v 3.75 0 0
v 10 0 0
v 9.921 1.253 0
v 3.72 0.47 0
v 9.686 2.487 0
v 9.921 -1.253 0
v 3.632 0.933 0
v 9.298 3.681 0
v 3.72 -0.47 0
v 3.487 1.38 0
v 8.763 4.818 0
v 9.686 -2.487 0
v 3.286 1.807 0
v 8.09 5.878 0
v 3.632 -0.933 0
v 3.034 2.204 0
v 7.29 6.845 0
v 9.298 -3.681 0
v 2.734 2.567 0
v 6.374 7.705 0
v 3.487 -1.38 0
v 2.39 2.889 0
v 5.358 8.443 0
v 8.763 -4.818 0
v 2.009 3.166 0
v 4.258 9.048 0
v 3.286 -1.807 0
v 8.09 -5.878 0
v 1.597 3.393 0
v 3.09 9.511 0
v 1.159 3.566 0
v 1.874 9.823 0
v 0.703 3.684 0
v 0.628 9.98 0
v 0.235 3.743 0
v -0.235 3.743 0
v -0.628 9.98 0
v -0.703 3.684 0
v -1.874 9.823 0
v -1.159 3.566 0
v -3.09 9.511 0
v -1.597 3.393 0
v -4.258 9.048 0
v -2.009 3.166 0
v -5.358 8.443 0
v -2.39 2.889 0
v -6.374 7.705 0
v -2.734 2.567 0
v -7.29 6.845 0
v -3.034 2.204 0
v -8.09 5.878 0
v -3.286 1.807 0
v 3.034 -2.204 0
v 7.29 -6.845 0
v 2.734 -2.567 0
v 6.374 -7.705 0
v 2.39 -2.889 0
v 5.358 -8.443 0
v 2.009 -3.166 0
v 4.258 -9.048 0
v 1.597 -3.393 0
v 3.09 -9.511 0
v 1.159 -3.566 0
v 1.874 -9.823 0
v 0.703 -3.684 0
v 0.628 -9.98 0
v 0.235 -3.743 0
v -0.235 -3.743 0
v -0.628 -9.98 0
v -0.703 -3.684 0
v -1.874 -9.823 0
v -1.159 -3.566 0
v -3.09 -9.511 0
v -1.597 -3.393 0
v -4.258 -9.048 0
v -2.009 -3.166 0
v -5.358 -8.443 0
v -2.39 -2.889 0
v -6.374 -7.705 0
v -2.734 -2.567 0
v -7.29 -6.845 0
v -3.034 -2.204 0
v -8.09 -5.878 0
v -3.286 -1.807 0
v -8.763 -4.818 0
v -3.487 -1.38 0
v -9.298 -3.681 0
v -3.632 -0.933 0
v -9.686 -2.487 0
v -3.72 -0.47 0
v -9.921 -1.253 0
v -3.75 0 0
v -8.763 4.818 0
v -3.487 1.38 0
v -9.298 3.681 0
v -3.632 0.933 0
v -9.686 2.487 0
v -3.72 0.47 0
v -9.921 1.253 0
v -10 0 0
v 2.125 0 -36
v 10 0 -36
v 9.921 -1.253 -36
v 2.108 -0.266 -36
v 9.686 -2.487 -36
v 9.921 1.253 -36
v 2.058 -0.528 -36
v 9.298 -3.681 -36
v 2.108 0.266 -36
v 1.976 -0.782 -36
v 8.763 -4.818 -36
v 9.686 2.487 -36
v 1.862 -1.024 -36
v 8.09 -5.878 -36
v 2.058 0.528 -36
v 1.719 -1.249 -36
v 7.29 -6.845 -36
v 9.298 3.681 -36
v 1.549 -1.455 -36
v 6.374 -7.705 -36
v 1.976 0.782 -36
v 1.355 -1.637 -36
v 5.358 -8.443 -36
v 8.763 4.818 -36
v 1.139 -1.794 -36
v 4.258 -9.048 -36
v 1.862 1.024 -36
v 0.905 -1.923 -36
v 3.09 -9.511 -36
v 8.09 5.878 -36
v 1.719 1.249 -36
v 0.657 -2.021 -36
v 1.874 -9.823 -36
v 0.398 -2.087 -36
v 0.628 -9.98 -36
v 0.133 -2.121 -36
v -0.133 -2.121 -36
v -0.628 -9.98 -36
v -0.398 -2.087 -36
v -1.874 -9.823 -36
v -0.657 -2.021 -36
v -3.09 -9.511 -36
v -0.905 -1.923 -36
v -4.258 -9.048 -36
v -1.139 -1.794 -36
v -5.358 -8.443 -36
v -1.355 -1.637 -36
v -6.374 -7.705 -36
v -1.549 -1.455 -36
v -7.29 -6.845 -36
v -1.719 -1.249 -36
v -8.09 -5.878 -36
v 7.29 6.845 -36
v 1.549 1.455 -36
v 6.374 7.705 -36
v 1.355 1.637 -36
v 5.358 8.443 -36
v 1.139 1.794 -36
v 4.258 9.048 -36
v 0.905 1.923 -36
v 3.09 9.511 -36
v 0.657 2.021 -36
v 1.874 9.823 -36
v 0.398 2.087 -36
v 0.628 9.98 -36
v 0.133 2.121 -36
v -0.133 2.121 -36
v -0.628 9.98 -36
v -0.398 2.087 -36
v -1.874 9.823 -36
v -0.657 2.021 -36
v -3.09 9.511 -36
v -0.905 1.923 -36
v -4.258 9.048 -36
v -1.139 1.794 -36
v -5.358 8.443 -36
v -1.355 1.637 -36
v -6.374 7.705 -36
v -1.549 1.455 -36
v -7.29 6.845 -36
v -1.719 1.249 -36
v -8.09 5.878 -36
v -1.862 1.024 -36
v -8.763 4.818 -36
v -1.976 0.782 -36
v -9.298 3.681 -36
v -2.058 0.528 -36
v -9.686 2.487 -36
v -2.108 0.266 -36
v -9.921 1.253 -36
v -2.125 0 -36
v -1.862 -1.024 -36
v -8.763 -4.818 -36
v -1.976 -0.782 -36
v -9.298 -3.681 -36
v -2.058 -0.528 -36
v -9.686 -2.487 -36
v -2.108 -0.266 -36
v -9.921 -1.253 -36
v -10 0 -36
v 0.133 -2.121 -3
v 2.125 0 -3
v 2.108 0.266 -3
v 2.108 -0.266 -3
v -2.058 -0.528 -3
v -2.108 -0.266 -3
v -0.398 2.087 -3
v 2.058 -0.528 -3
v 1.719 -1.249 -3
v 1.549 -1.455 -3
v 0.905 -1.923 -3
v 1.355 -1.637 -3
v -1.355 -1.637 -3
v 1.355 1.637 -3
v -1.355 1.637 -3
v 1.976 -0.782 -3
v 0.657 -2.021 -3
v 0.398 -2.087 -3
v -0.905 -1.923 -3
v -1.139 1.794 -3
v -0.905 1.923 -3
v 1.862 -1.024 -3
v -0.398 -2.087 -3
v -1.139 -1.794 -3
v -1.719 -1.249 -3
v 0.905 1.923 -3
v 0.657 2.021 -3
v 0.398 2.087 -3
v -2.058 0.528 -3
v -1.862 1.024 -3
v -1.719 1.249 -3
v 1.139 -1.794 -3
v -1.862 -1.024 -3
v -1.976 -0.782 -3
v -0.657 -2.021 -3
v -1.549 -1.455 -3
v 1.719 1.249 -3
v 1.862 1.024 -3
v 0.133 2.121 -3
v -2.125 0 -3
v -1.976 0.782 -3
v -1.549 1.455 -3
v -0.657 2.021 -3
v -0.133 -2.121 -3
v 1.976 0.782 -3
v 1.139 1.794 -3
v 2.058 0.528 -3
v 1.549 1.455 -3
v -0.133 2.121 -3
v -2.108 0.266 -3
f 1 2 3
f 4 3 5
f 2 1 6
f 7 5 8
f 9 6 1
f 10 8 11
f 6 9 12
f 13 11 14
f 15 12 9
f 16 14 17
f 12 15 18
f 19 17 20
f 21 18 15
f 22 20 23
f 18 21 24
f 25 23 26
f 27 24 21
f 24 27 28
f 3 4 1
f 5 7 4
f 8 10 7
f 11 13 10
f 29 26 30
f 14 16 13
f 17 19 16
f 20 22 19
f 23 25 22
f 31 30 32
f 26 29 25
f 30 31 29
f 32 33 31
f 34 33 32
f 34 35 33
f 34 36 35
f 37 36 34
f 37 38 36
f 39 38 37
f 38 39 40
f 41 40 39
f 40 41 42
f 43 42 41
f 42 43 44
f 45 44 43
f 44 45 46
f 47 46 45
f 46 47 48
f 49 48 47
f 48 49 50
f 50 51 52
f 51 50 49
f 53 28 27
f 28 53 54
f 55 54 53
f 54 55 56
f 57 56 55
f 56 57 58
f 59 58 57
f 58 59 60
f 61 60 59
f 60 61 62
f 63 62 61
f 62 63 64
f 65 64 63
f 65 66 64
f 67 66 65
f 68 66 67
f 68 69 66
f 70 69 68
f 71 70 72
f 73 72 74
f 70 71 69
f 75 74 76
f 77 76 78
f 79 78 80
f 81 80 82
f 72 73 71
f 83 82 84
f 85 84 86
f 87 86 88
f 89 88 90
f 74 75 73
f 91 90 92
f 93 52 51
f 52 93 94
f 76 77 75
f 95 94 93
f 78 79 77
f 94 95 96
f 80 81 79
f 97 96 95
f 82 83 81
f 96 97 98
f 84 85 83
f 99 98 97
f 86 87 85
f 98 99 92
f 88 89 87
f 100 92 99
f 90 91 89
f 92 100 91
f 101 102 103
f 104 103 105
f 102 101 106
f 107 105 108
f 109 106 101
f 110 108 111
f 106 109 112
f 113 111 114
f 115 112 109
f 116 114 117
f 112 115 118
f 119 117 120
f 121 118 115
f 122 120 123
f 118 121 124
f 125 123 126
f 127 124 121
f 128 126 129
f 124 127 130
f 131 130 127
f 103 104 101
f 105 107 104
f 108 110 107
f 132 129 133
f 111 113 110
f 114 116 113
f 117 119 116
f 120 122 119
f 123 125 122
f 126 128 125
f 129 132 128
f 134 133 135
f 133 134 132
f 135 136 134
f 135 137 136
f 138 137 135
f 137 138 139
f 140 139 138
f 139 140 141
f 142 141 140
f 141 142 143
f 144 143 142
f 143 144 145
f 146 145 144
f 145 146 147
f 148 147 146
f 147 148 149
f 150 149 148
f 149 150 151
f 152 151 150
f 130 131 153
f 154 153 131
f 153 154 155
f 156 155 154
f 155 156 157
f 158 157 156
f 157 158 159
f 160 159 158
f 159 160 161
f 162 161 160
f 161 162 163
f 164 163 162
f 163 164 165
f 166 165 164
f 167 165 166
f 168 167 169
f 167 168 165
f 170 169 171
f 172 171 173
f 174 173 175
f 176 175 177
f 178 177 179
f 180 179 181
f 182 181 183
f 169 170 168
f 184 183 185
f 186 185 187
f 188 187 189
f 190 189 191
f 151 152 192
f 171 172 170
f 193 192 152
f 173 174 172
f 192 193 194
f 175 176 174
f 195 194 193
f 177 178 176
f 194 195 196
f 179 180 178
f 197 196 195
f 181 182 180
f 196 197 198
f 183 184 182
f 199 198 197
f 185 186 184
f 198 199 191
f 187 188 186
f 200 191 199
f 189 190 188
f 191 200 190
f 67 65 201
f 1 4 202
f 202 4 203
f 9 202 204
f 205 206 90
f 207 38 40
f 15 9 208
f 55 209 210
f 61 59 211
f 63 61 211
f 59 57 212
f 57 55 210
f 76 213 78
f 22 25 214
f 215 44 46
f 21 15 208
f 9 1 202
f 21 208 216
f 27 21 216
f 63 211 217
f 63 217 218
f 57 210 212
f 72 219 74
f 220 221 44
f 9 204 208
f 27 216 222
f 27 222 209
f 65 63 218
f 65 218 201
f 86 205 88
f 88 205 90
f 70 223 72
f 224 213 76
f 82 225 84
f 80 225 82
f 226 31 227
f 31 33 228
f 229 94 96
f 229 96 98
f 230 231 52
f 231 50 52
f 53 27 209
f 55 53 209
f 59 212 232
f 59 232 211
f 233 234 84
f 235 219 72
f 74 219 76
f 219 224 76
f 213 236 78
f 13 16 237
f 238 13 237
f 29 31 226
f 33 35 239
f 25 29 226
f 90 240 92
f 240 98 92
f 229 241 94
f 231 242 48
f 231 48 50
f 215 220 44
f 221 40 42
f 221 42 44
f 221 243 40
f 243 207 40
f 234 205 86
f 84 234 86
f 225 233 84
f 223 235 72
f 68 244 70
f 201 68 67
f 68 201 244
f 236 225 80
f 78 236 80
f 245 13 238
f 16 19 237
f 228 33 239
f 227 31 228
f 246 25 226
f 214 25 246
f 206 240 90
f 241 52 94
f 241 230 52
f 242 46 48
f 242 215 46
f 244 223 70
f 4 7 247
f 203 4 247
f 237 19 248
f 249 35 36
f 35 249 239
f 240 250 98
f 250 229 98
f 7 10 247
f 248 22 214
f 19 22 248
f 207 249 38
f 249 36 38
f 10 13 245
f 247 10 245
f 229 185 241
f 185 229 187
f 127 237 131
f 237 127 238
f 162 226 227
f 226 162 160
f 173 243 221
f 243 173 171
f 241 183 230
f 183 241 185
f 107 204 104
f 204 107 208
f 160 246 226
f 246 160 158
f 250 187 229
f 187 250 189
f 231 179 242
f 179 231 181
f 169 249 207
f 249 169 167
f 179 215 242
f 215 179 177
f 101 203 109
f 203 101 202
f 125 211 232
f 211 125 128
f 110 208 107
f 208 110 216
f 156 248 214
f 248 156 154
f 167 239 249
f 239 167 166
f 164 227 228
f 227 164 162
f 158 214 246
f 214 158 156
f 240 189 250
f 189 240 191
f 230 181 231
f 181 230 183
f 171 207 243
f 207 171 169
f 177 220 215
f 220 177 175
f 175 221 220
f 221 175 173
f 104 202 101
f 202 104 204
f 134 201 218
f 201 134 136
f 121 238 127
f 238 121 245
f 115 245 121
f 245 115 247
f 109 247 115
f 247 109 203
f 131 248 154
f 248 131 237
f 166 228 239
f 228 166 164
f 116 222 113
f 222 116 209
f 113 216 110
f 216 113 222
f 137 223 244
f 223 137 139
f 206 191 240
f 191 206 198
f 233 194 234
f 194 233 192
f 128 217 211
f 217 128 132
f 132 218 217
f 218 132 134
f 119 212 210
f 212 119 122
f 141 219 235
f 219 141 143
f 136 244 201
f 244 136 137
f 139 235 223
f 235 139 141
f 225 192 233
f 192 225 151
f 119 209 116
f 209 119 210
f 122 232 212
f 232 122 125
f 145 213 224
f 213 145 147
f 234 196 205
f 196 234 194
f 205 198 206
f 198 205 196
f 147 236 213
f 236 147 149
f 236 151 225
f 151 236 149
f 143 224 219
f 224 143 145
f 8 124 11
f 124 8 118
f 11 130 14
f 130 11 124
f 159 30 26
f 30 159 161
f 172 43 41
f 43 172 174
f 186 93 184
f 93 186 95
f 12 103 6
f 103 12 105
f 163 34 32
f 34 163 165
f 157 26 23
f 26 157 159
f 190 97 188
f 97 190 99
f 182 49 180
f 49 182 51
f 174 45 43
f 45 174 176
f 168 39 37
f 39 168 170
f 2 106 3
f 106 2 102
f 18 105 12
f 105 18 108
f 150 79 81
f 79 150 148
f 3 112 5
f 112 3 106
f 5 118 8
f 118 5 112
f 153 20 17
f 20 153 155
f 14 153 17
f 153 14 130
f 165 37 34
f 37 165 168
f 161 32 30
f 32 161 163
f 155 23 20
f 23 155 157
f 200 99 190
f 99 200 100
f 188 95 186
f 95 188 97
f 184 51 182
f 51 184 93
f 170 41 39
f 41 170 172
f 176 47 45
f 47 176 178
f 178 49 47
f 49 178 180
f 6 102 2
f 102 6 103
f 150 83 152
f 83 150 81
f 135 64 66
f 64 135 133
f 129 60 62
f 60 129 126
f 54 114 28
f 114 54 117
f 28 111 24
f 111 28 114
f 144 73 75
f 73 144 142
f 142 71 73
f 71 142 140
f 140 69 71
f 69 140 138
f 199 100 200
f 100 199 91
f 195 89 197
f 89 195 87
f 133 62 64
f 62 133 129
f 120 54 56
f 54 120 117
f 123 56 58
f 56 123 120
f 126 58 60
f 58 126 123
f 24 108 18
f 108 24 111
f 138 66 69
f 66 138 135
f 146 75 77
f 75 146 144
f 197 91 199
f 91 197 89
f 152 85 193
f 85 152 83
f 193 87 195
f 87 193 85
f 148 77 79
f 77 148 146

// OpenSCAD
$fn = 50;


difference() {
	union() {
		translate(v = [0, 0, -36.0000000000]) {
			cylinder(h = 36, r = 10.0000000000);
		}
		cylinder(h = 0, r = 13.0000000000);
	}
	union() {
		translate(v = [0, 0, 0]) {
			rotate(a = [0, 0, 0]) {
				difference() {
					union() {
						#translate(v = [0, 0, -36.0000000000]) {
							cylinder(h = 36, r = 2.0000000000);
						}
						#translate(v = [0, 0, -3]) {
							cylinder(h = 3, r = 10.0000000000, r1 = 2.1250000000, r2 = 3.7500000000);
						}
						#translate(v = [0, 0, -36.0000000000]) {
							cylinder(h = 36, r = 2.1250000000);
						}
						#translate(v = [0, 0, -36.0000000000]) {
							cylinder(h = 36, r = 2.0000000000);
						}
					}
					union();
				}
			}
		}
	}
}
